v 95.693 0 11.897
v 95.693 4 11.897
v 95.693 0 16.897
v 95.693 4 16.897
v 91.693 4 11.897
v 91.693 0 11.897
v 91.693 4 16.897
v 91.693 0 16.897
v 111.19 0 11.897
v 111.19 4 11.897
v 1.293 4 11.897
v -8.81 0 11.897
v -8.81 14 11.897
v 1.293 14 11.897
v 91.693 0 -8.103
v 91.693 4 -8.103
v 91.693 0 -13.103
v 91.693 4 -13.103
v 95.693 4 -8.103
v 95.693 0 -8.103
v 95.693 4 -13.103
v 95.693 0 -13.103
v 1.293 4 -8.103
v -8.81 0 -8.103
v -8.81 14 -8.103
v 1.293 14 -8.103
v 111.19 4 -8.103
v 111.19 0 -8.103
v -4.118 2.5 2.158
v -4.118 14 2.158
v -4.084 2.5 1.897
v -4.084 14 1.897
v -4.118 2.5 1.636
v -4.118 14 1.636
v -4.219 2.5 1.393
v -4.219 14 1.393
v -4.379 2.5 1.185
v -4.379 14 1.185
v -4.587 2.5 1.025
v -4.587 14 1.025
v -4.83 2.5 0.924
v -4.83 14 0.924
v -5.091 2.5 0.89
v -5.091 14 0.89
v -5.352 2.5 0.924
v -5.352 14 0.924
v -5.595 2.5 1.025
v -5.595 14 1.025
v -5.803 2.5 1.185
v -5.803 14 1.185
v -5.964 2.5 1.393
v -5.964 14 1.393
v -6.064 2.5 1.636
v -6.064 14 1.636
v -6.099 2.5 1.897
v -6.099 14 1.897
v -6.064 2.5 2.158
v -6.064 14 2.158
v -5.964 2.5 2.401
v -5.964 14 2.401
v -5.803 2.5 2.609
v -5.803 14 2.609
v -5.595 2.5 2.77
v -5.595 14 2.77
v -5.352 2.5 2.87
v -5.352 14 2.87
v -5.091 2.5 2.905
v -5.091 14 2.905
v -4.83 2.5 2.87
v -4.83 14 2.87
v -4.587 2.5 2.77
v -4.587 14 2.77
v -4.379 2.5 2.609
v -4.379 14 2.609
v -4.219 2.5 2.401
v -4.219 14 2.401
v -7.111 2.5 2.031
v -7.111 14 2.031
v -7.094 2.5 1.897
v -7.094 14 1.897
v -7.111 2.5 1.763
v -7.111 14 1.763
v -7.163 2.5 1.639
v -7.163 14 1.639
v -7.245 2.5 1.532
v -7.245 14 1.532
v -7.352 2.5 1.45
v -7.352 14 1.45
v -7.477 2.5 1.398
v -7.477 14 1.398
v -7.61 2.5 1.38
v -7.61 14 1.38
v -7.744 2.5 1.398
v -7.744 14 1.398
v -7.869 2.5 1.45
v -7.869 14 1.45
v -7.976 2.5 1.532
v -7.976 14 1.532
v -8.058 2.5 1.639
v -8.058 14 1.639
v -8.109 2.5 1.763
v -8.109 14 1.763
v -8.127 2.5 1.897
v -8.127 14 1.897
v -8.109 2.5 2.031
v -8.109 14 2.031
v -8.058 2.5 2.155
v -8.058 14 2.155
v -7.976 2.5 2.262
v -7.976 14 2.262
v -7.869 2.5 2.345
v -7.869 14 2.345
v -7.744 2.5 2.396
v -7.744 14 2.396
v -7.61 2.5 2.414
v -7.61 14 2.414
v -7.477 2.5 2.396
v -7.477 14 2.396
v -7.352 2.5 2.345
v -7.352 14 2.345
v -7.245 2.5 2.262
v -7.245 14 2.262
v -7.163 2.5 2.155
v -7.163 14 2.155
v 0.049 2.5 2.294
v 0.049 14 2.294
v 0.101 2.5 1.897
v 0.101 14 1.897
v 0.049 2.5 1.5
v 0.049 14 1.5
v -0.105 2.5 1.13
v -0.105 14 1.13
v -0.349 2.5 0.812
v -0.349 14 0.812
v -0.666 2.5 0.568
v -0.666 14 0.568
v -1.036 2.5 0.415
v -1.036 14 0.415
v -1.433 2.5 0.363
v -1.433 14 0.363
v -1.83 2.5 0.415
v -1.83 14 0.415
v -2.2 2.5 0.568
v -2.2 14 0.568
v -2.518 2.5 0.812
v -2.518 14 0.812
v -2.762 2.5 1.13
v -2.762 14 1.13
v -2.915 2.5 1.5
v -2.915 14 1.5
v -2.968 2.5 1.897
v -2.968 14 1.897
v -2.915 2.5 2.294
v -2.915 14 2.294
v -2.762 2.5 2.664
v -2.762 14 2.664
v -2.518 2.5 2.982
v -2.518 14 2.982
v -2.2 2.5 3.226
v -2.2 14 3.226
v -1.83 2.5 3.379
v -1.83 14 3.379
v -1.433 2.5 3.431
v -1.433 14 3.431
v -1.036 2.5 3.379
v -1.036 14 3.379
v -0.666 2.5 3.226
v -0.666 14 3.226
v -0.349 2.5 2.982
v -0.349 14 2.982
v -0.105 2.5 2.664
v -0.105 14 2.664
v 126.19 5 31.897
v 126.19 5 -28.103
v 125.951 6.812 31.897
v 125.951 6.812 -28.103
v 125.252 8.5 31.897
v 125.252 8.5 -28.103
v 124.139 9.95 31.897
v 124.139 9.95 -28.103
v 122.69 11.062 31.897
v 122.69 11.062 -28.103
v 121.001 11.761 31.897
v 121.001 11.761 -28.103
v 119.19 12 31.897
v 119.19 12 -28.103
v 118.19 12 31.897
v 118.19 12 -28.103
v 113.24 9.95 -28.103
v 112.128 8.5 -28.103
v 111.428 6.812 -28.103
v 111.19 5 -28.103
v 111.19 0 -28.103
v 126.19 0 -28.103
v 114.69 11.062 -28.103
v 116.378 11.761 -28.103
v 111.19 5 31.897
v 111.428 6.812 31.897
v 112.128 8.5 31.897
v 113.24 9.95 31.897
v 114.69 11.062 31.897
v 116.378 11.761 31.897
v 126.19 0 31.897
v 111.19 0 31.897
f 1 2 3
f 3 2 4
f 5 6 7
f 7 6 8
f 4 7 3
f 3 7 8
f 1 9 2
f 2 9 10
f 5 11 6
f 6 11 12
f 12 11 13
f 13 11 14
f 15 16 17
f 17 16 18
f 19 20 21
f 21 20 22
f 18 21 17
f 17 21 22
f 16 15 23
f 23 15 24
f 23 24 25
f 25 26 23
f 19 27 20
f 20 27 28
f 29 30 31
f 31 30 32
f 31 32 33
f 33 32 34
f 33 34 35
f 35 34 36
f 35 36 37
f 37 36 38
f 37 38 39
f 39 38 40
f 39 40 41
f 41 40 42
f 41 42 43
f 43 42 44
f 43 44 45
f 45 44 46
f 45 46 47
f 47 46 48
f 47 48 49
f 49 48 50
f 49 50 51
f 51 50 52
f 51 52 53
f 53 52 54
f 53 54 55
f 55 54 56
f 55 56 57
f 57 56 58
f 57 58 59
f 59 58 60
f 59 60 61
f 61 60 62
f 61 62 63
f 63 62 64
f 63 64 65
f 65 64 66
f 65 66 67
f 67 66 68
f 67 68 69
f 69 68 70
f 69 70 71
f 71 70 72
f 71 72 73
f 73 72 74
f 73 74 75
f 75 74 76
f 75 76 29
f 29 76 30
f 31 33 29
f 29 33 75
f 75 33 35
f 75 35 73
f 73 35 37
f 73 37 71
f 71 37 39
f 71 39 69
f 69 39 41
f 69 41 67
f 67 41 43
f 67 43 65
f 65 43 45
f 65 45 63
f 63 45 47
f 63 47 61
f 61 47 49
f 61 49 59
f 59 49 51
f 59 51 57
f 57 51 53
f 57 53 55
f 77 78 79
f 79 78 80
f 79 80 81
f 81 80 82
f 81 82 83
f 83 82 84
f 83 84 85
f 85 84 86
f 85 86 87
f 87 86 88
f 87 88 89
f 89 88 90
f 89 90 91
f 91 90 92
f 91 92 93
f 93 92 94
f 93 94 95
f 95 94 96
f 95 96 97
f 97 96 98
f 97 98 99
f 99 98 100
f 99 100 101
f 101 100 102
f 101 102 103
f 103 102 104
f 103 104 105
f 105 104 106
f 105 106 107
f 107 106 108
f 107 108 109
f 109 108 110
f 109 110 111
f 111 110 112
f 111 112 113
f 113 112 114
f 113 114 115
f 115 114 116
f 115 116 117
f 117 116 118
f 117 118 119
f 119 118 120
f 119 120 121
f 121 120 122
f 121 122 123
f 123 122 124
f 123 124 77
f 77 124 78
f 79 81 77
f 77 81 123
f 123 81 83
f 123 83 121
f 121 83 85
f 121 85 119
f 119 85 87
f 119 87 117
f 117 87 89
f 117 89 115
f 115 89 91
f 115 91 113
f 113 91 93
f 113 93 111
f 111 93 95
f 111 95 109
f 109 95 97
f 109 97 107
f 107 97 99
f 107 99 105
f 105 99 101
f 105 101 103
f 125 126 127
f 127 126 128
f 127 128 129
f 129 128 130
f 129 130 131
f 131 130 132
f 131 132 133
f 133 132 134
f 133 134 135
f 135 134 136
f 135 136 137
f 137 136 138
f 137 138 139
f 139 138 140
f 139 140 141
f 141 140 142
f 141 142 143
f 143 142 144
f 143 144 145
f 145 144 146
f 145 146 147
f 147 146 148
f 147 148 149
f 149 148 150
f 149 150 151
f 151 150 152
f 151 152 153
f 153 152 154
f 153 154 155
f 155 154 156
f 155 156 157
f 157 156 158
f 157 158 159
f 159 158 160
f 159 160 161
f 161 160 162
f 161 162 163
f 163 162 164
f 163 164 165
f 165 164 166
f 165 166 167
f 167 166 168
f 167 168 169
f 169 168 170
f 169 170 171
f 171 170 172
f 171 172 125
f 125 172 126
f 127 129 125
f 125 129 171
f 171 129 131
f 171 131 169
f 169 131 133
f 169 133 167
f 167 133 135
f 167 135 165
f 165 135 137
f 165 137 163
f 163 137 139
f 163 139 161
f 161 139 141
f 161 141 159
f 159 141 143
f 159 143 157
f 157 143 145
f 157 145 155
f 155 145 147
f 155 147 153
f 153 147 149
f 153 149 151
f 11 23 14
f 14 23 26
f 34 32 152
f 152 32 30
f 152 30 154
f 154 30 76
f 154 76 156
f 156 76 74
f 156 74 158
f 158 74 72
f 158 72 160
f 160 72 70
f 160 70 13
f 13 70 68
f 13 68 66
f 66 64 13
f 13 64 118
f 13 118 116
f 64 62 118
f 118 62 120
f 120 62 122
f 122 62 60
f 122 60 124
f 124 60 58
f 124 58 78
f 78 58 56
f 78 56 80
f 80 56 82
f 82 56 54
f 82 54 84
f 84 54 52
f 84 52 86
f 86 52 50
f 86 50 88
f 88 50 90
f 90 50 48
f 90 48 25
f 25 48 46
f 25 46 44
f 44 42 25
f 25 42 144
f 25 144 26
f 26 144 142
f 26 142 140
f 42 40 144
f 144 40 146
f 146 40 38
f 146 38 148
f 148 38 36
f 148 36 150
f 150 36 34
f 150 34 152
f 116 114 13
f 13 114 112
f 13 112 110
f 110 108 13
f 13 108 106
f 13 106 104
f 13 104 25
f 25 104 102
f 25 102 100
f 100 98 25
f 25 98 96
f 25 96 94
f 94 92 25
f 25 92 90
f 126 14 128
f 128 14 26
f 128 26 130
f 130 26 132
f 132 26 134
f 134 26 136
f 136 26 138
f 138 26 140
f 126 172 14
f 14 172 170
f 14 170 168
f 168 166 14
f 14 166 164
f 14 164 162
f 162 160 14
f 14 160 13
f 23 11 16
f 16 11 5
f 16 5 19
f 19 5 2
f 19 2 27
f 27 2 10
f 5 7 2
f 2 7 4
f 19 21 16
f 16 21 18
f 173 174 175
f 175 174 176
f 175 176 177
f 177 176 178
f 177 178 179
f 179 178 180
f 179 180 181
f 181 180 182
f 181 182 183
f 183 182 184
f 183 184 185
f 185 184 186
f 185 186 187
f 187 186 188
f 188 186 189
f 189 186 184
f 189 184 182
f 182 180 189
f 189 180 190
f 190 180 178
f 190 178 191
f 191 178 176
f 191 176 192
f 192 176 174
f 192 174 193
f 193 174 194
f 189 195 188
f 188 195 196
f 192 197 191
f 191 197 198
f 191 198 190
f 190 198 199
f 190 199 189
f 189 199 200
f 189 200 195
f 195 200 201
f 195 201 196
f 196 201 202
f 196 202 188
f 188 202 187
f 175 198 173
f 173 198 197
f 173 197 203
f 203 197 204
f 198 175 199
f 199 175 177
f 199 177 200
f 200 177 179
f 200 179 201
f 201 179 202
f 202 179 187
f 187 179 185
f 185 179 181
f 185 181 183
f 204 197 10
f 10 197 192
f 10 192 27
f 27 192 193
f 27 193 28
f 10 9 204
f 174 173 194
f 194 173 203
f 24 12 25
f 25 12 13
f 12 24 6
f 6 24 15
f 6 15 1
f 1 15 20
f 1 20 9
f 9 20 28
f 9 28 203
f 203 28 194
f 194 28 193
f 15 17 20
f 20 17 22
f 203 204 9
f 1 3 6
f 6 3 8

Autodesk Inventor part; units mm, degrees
ref_plane "YZ Plane" through (0, 0, 0) normal (1, 0, 0) x (0, 1, 0)
ref_plane "XZ Plane" through (0, 0, 0) normal (0, 1, 0) x (-1, 0, 0)
ref_plane "XY Plane" through (0, 0, 0) normal (0, 0, 1) x (1, 0, 0)
sketch "rod" plane through (0, 0, 0) normal (0, 1, 0) x (-1, 0, 0)
  line L0 (8.8103, 11.8971) -> (-111.1897, 11.8971)
  line L1 (-111.1897, 11.8971) -> (-111.1897, -8.1029)
  line L2 (-111.1897, -8.1029) -> (8.8103, -8.1029)
  line L3 (8.8103, -8.1029) -> (8.8103, 11.8971)
  point P0 (0, 0)
  dimension "d0" = 20
  dimension "d1" = 120
extrude "Extrusion1" add sketch "rod" along normal blind 4
sketch "Sketch2" plane through (0, 0, 0) normal (0, -1, 0) x (1, 0, 0)
  line L0 (111.1897, 31.8971) -> (126.1897, 31.8971)
  line L1 (126.1897, 31.8971) -> (126.1897, -28.1029)
  line L2 (126.1897, -28.1029) -> (111.1897, -28.1029)
  line L3 (111.1897, -28.1029) -> (111.1897, 31.8971)
  line L4 (111.1897, 11.8971) -> (111.1897, -8.1029) projected
  line L5 (-8.8103, 11.8971) -> (111.1897, 11.8971) projected
  point P0 (0, 0)
  dimension "d6" = 15
  dimension "d7" = 60
  dimension "d8" = 20
extrude "Extrusion2" add sketch "Sketch2" against normal blind 12
fillet "Fillet1" radius 7 2 edges at (111.1897, 12, 1.8971) (126.1897, 12, 1.8971)
sketch "Sketch3" plane through (0, 4, 0) normal (0, 1, 0) x (1, 0, 0)
  line L0 (-8.8103, -11.8971) -> (111.1897, -11.8971) projected
  line L1 (111.1897, 8.1029) -> (-8.8103, 8.1029) projected
  line L2 (-8.8103, -11.8971) -> (1.2928, -11.8971)
  line L3 (1.2928, -11.8971) -> (1.2928, 8.1029)
  line L4 (1.2928, 8.1029) -> (-8.8103, 8.1029)
  line L5 (-8.8103, 8.1029) -> (-8.8103, -11.8971)
  point P0 (0, 0)
extrude "Extrusion3" add sketch "Sketch3" along normal blind 10
sketch "Sketch4" plane through (0, 14, 0) normal (0, 1, 0) x (1, 0, 0)
  circle A0 centre (-7.6103, -1.8971) radius 0.5166
  circle A1 centre (-5.0911, -1.8971) radius 1.0075
  circle A2 centre (-1.4334, -1.8971) radius 1.5342
  line L0 (-8.8103, -11.8971) -> (1.2928, -11.8971) projected
  line L1 (-8.8103, 8.1029) -> (-8.8103, -11.8971) projected
  point P0 (0, 0)
  dimension "d14" = 10
  dimension "d15" = 10
  dimension "d16" = 10
  dimension "d17" = 10.1031
  dimension "d18" = 1.2
extrude "Extrusion4" cut sketch "Sketch4" against normal blind 11.5
sketch "Sketch5" plane through (111.1897, 0, -8.1029) normal (0, 0, -1) x (-1, 0, 0)
  line L0 (0, 4) -> (109.8969, 4) projected
  line L1 (120, 0) -> (0, 0) projected
  line L2 (19.4969, 4) -> (15.4969, 4)
  line L3 (15.4969, 4) -> (15.4969, 0)
  line L4 (15.4969, 0) -> (19.4969, 0)
  line L5 (19.4969, 0) -> (19.4969, 4)
  line L6 (109.8969, 4) -> (109.8969, 14) projected
  point P0 (111.1897, 0)
  dimension "d23" = 4
  dimension "d24" = 90.4
extrude "Extrusion5" add sketch "Sketch5" along normal blind 5
sketch "Sketch6" plane through (-8.8103, 0, 11.8971) normal (0, 0, 1) x (1, 0, 0)
  line L0 (100.5031, 4) -> (10.1031, 4) projected
  line L1 (100.5031, 0) -> (0, 0) projected
  line L2 (104.5031, 4) -> (100.5031, 4)
  line L3 (100.5031, 4) -> (100.5031, 0)
  line L4 (100.5031, 0) -> (104.5031, 0)
  line L5 (104.5031, 0) -> (104.5031, 4)
  line L6 (10.1031, 4) -> (10.1031, 14) projected
  point P0 (8.8103, 0)
  dimension "d27" = 4
  dimension "d28" = 90.4
extrude "Extrusion6" add sketch "Sketch6" along normal blind 5
equation "\"d8\" = 0.25 * d7 + 0.25 * d0"
equation "\"d14\" = 0.5 * d0"
equation "\"d15\" = d14"
equation "\"d16\" = d14"
properties part number "gravity_holder"
